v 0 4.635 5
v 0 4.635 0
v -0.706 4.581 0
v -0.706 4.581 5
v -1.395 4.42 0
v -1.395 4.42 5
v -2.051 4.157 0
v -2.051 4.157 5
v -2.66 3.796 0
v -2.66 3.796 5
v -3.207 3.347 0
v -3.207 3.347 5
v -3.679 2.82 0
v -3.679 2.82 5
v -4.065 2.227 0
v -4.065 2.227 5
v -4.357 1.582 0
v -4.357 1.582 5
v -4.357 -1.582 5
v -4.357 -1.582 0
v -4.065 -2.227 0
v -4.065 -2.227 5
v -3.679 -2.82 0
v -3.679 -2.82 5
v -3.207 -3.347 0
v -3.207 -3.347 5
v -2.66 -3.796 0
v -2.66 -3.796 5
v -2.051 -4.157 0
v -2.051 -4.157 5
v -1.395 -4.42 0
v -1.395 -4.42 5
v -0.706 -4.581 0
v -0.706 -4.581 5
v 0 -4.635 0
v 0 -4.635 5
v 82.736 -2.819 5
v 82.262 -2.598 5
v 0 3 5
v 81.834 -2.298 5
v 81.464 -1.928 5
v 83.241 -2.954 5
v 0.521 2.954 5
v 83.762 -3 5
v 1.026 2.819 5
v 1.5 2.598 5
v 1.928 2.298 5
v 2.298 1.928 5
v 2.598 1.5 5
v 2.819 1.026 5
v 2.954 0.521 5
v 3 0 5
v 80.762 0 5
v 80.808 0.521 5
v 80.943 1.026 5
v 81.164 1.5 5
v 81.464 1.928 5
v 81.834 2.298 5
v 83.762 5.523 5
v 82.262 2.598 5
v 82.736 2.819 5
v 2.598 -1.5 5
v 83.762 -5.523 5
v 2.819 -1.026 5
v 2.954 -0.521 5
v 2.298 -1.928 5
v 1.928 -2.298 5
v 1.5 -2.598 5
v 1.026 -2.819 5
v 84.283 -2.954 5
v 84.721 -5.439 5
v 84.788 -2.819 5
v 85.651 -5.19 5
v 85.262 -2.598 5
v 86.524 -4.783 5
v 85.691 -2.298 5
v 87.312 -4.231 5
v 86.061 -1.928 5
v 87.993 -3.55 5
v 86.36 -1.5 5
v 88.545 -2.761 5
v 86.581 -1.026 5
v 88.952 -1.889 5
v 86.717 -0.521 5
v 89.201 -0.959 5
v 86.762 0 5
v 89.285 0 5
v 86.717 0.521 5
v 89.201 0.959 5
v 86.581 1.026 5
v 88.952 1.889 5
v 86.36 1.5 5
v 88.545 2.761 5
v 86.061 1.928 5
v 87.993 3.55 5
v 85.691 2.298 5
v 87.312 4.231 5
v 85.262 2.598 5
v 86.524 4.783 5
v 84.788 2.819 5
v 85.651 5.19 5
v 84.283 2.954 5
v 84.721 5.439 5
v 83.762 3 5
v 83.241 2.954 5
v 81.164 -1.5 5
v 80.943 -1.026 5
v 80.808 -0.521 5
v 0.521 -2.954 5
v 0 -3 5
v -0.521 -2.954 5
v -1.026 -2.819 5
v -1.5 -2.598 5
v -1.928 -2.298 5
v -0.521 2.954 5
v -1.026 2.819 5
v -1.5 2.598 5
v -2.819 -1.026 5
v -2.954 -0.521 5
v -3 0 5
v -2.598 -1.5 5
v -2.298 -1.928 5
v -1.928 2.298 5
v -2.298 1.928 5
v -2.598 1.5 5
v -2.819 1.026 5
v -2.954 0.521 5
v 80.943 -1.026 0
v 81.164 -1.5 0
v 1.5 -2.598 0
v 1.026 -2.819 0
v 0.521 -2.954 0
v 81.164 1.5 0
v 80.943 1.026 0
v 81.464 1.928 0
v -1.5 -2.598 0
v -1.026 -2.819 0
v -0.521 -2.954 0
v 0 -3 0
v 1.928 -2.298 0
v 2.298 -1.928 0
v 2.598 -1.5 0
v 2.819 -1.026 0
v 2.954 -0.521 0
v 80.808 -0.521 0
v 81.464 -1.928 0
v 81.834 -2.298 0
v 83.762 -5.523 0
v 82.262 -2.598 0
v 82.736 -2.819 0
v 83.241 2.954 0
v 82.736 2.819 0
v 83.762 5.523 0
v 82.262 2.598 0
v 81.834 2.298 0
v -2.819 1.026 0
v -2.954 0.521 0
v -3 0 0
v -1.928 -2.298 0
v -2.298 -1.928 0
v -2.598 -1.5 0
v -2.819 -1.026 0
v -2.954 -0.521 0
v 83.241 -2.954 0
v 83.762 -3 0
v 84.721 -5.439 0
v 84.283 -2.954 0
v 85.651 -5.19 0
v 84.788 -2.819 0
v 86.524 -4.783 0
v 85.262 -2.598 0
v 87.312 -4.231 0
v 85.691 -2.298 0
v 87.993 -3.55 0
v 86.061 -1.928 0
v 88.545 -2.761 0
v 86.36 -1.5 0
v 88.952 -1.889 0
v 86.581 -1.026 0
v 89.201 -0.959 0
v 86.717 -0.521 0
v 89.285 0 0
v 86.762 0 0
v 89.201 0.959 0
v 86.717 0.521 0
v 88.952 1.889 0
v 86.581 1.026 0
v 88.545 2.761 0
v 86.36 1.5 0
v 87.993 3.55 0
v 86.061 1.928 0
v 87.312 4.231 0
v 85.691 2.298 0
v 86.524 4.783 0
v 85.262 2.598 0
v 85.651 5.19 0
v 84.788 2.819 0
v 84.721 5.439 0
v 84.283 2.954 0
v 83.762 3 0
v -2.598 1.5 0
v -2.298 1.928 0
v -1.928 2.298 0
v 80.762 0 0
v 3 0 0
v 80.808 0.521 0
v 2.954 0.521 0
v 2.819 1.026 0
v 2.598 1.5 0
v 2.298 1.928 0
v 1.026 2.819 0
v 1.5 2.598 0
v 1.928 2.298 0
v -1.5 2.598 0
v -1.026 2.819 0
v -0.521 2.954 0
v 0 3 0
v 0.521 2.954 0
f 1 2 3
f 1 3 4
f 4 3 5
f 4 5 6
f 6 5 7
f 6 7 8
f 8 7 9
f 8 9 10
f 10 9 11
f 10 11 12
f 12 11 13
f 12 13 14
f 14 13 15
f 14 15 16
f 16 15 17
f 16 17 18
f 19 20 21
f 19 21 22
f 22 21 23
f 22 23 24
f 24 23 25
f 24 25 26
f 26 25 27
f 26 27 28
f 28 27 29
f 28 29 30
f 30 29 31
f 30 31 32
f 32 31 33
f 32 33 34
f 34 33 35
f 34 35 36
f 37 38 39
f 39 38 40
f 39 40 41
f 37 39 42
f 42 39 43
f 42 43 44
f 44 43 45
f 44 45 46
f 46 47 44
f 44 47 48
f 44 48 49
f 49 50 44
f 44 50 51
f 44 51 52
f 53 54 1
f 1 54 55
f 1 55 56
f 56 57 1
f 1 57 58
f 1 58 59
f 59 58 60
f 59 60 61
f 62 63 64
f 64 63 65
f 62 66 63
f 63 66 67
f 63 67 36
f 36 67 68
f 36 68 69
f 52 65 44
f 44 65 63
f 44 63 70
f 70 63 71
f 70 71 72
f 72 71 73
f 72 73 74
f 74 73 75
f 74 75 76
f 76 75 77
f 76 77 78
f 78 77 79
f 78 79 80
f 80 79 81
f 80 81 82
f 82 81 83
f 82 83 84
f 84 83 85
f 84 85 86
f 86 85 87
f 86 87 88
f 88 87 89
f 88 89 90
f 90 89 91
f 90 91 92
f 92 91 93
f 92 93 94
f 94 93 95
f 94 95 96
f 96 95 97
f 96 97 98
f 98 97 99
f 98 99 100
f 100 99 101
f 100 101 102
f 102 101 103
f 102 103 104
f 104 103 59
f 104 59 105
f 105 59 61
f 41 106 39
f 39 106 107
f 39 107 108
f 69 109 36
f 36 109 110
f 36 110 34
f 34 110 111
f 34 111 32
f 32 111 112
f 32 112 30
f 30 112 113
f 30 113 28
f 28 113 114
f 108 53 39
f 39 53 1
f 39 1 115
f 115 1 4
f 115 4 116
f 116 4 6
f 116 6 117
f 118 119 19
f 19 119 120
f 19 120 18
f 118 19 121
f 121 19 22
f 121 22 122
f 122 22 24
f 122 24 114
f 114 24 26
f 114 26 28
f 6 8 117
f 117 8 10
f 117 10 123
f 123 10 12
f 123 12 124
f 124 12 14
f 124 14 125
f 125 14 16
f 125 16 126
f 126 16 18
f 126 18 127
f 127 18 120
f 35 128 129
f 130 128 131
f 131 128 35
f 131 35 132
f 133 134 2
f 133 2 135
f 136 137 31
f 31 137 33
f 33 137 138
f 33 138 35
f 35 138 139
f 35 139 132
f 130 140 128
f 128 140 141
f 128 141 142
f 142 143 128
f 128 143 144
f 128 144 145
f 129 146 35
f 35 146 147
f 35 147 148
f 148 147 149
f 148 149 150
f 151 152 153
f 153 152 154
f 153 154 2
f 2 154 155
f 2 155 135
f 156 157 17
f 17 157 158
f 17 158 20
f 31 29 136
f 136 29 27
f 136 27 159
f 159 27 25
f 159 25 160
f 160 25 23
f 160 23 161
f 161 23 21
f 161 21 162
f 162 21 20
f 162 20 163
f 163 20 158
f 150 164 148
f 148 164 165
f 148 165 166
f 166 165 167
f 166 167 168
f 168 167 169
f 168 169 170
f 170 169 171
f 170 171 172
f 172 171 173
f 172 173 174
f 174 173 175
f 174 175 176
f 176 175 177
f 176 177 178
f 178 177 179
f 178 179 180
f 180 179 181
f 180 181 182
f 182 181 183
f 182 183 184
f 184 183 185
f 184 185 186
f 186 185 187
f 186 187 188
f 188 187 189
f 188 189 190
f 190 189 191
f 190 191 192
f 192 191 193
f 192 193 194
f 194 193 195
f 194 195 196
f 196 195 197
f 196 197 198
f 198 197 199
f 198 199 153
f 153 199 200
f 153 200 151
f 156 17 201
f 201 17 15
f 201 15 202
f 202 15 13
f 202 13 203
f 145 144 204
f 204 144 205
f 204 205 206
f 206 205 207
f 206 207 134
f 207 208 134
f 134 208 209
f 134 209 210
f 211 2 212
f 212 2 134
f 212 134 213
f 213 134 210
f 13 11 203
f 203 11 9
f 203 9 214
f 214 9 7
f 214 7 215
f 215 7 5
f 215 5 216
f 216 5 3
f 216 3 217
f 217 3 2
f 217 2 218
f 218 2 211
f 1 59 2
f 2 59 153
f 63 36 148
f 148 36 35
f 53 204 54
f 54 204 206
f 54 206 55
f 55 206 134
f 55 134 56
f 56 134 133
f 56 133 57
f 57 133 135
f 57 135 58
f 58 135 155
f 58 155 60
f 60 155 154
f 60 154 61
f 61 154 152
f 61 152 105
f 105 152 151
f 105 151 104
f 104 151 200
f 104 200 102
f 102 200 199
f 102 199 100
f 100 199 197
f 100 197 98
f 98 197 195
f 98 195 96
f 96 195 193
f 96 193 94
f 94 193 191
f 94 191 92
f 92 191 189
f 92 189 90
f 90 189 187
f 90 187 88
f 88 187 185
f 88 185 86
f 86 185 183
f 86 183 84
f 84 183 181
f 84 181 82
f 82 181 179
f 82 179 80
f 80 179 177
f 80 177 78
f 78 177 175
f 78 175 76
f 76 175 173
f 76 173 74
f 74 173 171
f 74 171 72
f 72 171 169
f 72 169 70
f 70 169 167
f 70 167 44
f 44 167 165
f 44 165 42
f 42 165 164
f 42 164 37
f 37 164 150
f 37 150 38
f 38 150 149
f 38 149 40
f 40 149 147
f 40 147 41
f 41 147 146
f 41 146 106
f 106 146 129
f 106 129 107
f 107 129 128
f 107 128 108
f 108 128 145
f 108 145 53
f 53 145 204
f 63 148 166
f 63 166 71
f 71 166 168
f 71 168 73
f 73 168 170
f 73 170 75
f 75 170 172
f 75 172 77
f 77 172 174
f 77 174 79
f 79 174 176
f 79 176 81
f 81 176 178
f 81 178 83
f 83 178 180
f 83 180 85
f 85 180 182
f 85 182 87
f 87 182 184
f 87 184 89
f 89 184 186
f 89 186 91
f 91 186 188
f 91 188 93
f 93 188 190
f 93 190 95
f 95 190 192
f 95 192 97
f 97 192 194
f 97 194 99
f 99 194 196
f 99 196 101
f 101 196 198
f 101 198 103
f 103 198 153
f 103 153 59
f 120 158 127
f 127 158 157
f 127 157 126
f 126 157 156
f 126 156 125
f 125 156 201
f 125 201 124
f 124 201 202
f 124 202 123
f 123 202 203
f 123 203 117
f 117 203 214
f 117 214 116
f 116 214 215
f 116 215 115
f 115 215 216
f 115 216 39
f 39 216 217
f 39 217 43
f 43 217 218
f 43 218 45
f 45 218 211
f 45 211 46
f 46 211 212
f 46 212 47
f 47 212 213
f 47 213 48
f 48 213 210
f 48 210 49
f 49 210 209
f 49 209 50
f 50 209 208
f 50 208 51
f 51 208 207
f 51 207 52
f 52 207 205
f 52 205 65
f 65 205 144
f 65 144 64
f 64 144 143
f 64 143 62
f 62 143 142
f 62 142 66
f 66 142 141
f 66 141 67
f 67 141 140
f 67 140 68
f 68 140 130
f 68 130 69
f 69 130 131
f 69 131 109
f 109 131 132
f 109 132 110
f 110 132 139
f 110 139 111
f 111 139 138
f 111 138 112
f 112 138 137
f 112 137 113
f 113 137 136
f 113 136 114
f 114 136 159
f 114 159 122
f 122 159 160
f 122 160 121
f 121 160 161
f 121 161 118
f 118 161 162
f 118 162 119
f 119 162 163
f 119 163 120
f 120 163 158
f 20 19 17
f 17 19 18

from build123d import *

# Parameters (mm, degrees)
SZKIC1_R                    = 4.635188213
SZKIC1_R_2                  = 3.000000079
SZKIC1_R_3                  = 5.522620658
DODANIE_WYCI_GNI_CIE1_DEPTH = 5
SZKIC2_W                    = 1.618528634
SZKIC2_H                    = 7.505645785
SZKIC2_W_2                  = 0.651830256
SZKIC2_H_2                  = 5.051684483
WYTNIJ_WYCI_GNI_CIE3_DEPTH  = 6


with BuildPart() as part:
    # Szkic1 → Dodanie-wyciągnięcie1 (new body)
    with BuildSketch(Plane.XY):
        with BuildLine():
            Line((0, -4.635188213), (83.645408354, -5.521381009))
            ThreePointArc((83.645408354, -5.521381009), (78.239794892, 0), (83.645408354, 5.521381009))
            Line((83.645408354, 5.521381009), (0, 4.635188213))
            ThreePointArc((0, 4.635188213), (3.277573017, 3.277573017), (4.635188213, 0))
            ThreePointArc((4.635188213, 0), (3.277573017, -3.277573017), (0, -4.635188213))
        make_face()
        Circle(SZKIC1_R)
        Circle(SZKIC1_R_2, mode=Mode.SUBTRACT)
        with BuildLine():
            ThreePointArc((0, 4.635188213), (-4.635188213, 0), (0, -4.635188213))
            ThreePointArc((0, -4.635188213), (3.277573017, -3.277573017), (4.635188213, 0))
            ThreePointArc((4.635188213, 0), (3.277573017, 3.277573017), (0, 4.635188213))
        make_face()
        Circle(SZKIC1_R_2, mode=Mode.SUBTRACT)
        with BuildLine():
            ThreePointArc((83.645408354, -5.521381009), (83.703908669, -5.522310737), (83.76241555, -5.522620658))
            Line((83.76241555, -5.522620658), (83.645408354, -5.521381009))
        make_face()
        with Locations((83.76241555, 0)):
            Circle(SZKIC1_R_3)
        with Locations((83.76241555, 0)):
            Circle(SZKIC1_R_2, mode=Mode.SUBTRACT)
        with BuildLine():
            ThreePointArc((83.76241555, 5.522620658), (83.703908669, 5.522310737), (83.645408354, 5.521381009))
            Line((83.645408354, 5.521381009), (83.76241555, 5.522620658))
        make_face()
    extrude(amount=DODANIE_WYCI_GNI_CIE1_DEPTH)

    # Szkic2 → Wytnij-wyciągnięcie3 (cut, through all)
    with BuildSketch(Plane.XY):
        with Locations((193.638606269, 0.381285041)):
            Rectangle(SZKIC2_W, SZKIC2_H)
        with Locations((-4.682734605, -0.038745932)):
            Rectangle(SZKIC2_W_2, SZKIC2_H_2)
    extrude(amount=WYTNIJ_WYCI_GNI_CIE3_DEPTH, mode=Mode.SUBTRACT)


solid = part.part
